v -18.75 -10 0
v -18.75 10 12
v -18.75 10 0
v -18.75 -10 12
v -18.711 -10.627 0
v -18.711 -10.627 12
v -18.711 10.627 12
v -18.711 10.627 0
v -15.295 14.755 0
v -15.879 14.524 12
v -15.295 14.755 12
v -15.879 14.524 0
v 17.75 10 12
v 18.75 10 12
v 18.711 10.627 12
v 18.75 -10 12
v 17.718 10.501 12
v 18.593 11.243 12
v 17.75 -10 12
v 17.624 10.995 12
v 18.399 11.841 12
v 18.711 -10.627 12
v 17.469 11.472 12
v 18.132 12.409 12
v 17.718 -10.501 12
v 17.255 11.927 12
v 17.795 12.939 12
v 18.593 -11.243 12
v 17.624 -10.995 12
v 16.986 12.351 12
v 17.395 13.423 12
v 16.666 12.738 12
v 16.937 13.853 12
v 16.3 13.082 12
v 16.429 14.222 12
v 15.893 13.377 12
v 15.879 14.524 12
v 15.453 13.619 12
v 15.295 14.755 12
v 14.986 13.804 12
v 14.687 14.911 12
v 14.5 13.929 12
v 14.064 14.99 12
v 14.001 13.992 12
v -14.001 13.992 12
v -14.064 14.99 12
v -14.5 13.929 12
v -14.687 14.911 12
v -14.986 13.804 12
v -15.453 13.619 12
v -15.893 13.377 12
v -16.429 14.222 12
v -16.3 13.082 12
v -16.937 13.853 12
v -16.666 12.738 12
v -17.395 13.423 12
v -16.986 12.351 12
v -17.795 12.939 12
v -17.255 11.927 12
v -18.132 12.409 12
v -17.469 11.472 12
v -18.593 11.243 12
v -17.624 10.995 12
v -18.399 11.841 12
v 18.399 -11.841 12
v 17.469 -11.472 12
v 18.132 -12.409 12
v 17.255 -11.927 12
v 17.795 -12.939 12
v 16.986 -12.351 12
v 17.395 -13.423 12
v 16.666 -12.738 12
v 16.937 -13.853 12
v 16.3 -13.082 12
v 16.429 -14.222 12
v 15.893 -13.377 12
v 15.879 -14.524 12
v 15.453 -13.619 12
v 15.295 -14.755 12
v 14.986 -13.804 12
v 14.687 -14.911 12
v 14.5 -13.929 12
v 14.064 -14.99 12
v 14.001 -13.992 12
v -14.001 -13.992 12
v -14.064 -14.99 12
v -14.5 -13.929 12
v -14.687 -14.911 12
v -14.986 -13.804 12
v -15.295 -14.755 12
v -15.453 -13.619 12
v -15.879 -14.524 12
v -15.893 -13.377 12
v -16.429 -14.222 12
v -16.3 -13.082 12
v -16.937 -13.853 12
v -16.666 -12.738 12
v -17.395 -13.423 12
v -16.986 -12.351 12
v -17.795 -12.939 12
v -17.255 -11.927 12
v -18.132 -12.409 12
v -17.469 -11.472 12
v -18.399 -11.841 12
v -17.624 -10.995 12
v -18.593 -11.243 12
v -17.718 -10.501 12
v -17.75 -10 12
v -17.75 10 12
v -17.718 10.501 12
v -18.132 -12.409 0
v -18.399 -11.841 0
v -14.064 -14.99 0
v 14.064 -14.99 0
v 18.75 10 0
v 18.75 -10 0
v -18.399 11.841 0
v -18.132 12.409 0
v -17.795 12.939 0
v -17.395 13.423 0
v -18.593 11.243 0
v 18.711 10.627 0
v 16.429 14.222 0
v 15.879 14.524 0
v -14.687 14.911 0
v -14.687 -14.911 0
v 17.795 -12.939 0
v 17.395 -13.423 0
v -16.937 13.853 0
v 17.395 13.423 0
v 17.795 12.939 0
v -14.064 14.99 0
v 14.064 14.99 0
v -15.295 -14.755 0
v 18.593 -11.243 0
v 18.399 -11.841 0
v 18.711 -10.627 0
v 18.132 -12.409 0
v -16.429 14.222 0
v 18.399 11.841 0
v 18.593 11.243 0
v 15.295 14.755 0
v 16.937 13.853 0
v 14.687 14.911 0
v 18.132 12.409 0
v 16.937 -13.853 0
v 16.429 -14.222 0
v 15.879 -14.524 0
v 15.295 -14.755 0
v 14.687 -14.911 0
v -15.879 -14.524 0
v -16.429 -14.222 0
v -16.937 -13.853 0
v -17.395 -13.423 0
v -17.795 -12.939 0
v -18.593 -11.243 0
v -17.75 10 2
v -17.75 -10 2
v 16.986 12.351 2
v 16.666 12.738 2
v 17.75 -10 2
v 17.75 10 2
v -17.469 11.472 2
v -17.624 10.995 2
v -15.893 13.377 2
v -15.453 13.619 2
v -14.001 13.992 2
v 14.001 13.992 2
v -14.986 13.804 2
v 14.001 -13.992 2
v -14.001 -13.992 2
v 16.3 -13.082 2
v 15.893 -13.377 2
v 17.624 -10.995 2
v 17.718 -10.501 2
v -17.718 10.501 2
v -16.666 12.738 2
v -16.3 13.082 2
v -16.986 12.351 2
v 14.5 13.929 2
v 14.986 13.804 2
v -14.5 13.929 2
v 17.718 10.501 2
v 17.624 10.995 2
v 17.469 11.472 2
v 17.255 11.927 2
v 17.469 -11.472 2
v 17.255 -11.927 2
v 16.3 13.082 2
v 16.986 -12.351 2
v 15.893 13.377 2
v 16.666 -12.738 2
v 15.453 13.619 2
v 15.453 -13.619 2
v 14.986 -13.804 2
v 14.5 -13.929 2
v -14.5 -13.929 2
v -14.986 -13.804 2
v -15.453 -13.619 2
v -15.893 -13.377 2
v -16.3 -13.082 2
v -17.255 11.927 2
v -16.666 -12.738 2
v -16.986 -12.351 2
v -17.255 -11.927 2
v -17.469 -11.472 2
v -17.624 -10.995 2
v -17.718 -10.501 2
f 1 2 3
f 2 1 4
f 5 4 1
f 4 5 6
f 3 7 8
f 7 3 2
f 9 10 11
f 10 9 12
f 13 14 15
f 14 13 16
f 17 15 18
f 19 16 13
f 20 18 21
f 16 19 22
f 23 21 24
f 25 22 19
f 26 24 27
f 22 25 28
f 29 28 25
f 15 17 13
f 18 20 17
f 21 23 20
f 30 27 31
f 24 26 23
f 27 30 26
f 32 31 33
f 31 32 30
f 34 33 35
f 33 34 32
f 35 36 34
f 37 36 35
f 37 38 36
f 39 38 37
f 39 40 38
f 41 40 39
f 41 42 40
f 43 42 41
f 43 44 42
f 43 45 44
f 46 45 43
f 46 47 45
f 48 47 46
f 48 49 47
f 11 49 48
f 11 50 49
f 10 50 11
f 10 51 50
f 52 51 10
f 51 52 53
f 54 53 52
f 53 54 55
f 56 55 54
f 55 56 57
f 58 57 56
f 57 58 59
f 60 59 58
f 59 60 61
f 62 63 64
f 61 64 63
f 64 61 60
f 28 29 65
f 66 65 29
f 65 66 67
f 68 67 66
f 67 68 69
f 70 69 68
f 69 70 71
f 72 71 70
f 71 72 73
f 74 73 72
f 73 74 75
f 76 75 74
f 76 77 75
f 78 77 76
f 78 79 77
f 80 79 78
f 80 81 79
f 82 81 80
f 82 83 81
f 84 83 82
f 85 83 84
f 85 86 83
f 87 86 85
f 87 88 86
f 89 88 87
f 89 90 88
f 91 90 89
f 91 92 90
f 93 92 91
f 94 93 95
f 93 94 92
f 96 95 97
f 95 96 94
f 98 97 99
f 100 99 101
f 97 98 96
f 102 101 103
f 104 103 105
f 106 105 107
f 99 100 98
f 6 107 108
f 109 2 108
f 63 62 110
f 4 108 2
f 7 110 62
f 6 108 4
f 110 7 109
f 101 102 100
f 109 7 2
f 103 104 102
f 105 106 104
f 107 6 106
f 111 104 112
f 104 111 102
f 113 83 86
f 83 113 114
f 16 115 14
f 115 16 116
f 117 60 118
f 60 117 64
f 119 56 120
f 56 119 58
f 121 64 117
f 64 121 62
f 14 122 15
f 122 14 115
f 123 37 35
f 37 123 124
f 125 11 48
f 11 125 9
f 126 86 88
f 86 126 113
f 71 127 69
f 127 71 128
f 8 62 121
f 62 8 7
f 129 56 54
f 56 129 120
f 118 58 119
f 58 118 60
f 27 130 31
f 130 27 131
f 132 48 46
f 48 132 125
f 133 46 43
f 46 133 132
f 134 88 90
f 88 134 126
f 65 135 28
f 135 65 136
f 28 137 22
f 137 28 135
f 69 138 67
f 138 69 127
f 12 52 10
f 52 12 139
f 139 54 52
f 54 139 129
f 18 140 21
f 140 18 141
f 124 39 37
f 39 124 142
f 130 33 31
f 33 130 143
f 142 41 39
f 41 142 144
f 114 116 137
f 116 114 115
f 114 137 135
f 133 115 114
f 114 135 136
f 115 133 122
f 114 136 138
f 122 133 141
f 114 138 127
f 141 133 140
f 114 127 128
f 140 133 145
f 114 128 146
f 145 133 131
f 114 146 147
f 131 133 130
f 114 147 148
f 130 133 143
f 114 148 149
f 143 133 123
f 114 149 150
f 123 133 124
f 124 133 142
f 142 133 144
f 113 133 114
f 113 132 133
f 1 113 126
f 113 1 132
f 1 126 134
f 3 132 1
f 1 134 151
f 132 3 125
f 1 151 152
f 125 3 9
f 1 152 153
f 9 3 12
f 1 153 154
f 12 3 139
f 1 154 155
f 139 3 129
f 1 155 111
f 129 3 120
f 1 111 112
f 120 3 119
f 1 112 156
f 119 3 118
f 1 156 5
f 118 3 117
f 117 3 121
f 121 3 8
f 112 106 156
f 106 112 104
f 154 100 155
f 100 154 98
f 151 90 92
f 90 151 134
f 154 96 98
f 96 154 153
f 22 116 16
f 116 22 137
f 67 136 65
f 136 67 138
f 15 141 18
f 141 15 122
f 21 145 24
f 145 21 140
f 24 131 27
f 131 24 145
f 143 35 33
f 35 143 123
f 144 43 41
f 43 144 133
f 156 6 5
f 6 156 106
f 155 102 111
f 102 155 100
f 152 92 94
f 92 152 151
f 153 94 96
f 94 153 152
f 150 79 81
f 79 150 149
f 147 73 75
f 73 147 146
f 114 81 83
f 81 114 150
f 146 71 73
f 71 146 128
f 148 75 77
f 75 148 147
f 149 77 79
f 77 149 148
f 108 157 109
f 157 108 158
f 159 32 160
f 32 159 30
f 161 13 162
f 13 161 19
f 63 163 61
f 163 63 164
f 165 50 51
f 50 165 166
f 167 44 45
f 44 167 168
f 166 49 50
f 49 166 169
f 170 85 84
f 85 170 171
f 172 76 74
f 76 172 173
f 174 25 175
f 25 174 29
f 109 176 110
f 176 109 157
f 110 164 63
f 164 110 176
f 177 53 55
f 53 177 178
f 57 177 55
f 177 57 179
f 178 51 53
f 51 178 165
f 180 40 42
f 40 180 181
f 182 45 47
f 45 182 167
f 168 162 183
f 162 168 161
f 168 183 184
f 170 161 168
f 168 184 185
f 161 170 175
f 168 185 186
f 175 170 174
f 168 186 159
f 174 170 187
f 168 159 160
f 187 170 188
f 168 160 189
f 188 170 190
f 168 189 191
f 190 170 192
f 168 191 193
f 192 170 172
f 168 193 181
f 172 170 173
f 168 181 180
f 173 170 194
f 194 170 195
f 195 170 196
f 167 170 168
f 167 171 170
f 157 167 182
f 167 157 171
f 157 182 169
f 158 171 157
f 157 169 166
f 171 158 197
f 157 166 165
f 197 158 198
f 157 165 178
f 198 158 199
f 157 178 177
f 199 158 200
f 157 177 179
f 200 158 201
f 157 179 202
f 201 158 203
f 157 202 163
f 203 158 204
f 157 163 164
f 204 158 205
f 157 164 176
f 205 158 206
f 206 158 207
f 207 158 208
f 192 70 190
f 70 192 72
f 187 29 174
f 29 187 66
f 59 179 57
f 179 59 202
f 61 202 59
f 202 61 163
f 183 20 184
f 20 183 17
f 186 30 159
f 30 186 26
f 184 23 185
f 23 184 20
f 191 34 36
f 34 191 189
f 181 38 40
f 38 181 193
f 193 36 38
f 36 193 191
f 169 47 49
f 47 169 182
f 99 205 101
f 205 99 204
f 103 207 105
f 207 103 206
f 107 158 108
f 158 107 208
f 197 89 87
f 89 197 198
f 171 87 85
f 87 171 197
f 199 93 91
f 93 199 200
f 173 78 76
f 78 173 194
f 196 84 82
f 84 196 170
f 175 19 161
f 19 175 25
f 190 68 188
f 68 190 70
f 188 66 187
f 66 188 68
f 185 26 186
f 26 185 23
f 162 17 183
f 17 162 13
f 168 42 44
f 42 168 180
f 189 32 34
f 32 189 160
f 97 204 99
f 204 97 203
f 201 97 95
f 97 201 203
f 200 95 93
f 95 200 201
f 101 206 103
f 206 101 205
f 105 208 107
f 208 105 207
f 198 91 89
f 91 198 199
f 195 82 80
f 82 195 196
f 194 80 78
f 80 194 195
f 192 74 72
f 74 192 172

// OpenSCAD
$fn = 50;


difference() {
	union() {
		hull() {
			translate(v = [-13.7500000000, 10.0000000000, 0]) {
				cylinder(h = 12, r = 5);
			}
			translate(v = [13.7500000000, 10.0000000000, 0]) {
				cylinder(h = 12, r = 5);
			}
			translate(v = [-13.7500000000, -10.0000000000, 0]) {
				cylinder(h = 12, r = 5);
			}
			translate(v = [13.7500000000, -10.0000000000, 0]) {
				cylinder(h = 12, r = 5);
			}
		}
	}
	union() {
		translate(v = [0, 0, 2]) {
			hull() {
				translate(v = [-13.7500000000, 10.0000000000, 0]) {
					cylinder(h = 10, r = 4);
				}
				translate(v = [13.7500000000, 10.0000000000, 0]) {
					cylinder(h = 10, r = 4);
				}
				translate(v = [-13.7500000000, -10.0000000000, 0]) {
					cylinder(h = 10, r = 4);
				}
				translate(v = [13.7500000000, -10.0000000000, 0]) {
					cylinder(h = 10, r = 4);
				}
			}
		}
	}
}
